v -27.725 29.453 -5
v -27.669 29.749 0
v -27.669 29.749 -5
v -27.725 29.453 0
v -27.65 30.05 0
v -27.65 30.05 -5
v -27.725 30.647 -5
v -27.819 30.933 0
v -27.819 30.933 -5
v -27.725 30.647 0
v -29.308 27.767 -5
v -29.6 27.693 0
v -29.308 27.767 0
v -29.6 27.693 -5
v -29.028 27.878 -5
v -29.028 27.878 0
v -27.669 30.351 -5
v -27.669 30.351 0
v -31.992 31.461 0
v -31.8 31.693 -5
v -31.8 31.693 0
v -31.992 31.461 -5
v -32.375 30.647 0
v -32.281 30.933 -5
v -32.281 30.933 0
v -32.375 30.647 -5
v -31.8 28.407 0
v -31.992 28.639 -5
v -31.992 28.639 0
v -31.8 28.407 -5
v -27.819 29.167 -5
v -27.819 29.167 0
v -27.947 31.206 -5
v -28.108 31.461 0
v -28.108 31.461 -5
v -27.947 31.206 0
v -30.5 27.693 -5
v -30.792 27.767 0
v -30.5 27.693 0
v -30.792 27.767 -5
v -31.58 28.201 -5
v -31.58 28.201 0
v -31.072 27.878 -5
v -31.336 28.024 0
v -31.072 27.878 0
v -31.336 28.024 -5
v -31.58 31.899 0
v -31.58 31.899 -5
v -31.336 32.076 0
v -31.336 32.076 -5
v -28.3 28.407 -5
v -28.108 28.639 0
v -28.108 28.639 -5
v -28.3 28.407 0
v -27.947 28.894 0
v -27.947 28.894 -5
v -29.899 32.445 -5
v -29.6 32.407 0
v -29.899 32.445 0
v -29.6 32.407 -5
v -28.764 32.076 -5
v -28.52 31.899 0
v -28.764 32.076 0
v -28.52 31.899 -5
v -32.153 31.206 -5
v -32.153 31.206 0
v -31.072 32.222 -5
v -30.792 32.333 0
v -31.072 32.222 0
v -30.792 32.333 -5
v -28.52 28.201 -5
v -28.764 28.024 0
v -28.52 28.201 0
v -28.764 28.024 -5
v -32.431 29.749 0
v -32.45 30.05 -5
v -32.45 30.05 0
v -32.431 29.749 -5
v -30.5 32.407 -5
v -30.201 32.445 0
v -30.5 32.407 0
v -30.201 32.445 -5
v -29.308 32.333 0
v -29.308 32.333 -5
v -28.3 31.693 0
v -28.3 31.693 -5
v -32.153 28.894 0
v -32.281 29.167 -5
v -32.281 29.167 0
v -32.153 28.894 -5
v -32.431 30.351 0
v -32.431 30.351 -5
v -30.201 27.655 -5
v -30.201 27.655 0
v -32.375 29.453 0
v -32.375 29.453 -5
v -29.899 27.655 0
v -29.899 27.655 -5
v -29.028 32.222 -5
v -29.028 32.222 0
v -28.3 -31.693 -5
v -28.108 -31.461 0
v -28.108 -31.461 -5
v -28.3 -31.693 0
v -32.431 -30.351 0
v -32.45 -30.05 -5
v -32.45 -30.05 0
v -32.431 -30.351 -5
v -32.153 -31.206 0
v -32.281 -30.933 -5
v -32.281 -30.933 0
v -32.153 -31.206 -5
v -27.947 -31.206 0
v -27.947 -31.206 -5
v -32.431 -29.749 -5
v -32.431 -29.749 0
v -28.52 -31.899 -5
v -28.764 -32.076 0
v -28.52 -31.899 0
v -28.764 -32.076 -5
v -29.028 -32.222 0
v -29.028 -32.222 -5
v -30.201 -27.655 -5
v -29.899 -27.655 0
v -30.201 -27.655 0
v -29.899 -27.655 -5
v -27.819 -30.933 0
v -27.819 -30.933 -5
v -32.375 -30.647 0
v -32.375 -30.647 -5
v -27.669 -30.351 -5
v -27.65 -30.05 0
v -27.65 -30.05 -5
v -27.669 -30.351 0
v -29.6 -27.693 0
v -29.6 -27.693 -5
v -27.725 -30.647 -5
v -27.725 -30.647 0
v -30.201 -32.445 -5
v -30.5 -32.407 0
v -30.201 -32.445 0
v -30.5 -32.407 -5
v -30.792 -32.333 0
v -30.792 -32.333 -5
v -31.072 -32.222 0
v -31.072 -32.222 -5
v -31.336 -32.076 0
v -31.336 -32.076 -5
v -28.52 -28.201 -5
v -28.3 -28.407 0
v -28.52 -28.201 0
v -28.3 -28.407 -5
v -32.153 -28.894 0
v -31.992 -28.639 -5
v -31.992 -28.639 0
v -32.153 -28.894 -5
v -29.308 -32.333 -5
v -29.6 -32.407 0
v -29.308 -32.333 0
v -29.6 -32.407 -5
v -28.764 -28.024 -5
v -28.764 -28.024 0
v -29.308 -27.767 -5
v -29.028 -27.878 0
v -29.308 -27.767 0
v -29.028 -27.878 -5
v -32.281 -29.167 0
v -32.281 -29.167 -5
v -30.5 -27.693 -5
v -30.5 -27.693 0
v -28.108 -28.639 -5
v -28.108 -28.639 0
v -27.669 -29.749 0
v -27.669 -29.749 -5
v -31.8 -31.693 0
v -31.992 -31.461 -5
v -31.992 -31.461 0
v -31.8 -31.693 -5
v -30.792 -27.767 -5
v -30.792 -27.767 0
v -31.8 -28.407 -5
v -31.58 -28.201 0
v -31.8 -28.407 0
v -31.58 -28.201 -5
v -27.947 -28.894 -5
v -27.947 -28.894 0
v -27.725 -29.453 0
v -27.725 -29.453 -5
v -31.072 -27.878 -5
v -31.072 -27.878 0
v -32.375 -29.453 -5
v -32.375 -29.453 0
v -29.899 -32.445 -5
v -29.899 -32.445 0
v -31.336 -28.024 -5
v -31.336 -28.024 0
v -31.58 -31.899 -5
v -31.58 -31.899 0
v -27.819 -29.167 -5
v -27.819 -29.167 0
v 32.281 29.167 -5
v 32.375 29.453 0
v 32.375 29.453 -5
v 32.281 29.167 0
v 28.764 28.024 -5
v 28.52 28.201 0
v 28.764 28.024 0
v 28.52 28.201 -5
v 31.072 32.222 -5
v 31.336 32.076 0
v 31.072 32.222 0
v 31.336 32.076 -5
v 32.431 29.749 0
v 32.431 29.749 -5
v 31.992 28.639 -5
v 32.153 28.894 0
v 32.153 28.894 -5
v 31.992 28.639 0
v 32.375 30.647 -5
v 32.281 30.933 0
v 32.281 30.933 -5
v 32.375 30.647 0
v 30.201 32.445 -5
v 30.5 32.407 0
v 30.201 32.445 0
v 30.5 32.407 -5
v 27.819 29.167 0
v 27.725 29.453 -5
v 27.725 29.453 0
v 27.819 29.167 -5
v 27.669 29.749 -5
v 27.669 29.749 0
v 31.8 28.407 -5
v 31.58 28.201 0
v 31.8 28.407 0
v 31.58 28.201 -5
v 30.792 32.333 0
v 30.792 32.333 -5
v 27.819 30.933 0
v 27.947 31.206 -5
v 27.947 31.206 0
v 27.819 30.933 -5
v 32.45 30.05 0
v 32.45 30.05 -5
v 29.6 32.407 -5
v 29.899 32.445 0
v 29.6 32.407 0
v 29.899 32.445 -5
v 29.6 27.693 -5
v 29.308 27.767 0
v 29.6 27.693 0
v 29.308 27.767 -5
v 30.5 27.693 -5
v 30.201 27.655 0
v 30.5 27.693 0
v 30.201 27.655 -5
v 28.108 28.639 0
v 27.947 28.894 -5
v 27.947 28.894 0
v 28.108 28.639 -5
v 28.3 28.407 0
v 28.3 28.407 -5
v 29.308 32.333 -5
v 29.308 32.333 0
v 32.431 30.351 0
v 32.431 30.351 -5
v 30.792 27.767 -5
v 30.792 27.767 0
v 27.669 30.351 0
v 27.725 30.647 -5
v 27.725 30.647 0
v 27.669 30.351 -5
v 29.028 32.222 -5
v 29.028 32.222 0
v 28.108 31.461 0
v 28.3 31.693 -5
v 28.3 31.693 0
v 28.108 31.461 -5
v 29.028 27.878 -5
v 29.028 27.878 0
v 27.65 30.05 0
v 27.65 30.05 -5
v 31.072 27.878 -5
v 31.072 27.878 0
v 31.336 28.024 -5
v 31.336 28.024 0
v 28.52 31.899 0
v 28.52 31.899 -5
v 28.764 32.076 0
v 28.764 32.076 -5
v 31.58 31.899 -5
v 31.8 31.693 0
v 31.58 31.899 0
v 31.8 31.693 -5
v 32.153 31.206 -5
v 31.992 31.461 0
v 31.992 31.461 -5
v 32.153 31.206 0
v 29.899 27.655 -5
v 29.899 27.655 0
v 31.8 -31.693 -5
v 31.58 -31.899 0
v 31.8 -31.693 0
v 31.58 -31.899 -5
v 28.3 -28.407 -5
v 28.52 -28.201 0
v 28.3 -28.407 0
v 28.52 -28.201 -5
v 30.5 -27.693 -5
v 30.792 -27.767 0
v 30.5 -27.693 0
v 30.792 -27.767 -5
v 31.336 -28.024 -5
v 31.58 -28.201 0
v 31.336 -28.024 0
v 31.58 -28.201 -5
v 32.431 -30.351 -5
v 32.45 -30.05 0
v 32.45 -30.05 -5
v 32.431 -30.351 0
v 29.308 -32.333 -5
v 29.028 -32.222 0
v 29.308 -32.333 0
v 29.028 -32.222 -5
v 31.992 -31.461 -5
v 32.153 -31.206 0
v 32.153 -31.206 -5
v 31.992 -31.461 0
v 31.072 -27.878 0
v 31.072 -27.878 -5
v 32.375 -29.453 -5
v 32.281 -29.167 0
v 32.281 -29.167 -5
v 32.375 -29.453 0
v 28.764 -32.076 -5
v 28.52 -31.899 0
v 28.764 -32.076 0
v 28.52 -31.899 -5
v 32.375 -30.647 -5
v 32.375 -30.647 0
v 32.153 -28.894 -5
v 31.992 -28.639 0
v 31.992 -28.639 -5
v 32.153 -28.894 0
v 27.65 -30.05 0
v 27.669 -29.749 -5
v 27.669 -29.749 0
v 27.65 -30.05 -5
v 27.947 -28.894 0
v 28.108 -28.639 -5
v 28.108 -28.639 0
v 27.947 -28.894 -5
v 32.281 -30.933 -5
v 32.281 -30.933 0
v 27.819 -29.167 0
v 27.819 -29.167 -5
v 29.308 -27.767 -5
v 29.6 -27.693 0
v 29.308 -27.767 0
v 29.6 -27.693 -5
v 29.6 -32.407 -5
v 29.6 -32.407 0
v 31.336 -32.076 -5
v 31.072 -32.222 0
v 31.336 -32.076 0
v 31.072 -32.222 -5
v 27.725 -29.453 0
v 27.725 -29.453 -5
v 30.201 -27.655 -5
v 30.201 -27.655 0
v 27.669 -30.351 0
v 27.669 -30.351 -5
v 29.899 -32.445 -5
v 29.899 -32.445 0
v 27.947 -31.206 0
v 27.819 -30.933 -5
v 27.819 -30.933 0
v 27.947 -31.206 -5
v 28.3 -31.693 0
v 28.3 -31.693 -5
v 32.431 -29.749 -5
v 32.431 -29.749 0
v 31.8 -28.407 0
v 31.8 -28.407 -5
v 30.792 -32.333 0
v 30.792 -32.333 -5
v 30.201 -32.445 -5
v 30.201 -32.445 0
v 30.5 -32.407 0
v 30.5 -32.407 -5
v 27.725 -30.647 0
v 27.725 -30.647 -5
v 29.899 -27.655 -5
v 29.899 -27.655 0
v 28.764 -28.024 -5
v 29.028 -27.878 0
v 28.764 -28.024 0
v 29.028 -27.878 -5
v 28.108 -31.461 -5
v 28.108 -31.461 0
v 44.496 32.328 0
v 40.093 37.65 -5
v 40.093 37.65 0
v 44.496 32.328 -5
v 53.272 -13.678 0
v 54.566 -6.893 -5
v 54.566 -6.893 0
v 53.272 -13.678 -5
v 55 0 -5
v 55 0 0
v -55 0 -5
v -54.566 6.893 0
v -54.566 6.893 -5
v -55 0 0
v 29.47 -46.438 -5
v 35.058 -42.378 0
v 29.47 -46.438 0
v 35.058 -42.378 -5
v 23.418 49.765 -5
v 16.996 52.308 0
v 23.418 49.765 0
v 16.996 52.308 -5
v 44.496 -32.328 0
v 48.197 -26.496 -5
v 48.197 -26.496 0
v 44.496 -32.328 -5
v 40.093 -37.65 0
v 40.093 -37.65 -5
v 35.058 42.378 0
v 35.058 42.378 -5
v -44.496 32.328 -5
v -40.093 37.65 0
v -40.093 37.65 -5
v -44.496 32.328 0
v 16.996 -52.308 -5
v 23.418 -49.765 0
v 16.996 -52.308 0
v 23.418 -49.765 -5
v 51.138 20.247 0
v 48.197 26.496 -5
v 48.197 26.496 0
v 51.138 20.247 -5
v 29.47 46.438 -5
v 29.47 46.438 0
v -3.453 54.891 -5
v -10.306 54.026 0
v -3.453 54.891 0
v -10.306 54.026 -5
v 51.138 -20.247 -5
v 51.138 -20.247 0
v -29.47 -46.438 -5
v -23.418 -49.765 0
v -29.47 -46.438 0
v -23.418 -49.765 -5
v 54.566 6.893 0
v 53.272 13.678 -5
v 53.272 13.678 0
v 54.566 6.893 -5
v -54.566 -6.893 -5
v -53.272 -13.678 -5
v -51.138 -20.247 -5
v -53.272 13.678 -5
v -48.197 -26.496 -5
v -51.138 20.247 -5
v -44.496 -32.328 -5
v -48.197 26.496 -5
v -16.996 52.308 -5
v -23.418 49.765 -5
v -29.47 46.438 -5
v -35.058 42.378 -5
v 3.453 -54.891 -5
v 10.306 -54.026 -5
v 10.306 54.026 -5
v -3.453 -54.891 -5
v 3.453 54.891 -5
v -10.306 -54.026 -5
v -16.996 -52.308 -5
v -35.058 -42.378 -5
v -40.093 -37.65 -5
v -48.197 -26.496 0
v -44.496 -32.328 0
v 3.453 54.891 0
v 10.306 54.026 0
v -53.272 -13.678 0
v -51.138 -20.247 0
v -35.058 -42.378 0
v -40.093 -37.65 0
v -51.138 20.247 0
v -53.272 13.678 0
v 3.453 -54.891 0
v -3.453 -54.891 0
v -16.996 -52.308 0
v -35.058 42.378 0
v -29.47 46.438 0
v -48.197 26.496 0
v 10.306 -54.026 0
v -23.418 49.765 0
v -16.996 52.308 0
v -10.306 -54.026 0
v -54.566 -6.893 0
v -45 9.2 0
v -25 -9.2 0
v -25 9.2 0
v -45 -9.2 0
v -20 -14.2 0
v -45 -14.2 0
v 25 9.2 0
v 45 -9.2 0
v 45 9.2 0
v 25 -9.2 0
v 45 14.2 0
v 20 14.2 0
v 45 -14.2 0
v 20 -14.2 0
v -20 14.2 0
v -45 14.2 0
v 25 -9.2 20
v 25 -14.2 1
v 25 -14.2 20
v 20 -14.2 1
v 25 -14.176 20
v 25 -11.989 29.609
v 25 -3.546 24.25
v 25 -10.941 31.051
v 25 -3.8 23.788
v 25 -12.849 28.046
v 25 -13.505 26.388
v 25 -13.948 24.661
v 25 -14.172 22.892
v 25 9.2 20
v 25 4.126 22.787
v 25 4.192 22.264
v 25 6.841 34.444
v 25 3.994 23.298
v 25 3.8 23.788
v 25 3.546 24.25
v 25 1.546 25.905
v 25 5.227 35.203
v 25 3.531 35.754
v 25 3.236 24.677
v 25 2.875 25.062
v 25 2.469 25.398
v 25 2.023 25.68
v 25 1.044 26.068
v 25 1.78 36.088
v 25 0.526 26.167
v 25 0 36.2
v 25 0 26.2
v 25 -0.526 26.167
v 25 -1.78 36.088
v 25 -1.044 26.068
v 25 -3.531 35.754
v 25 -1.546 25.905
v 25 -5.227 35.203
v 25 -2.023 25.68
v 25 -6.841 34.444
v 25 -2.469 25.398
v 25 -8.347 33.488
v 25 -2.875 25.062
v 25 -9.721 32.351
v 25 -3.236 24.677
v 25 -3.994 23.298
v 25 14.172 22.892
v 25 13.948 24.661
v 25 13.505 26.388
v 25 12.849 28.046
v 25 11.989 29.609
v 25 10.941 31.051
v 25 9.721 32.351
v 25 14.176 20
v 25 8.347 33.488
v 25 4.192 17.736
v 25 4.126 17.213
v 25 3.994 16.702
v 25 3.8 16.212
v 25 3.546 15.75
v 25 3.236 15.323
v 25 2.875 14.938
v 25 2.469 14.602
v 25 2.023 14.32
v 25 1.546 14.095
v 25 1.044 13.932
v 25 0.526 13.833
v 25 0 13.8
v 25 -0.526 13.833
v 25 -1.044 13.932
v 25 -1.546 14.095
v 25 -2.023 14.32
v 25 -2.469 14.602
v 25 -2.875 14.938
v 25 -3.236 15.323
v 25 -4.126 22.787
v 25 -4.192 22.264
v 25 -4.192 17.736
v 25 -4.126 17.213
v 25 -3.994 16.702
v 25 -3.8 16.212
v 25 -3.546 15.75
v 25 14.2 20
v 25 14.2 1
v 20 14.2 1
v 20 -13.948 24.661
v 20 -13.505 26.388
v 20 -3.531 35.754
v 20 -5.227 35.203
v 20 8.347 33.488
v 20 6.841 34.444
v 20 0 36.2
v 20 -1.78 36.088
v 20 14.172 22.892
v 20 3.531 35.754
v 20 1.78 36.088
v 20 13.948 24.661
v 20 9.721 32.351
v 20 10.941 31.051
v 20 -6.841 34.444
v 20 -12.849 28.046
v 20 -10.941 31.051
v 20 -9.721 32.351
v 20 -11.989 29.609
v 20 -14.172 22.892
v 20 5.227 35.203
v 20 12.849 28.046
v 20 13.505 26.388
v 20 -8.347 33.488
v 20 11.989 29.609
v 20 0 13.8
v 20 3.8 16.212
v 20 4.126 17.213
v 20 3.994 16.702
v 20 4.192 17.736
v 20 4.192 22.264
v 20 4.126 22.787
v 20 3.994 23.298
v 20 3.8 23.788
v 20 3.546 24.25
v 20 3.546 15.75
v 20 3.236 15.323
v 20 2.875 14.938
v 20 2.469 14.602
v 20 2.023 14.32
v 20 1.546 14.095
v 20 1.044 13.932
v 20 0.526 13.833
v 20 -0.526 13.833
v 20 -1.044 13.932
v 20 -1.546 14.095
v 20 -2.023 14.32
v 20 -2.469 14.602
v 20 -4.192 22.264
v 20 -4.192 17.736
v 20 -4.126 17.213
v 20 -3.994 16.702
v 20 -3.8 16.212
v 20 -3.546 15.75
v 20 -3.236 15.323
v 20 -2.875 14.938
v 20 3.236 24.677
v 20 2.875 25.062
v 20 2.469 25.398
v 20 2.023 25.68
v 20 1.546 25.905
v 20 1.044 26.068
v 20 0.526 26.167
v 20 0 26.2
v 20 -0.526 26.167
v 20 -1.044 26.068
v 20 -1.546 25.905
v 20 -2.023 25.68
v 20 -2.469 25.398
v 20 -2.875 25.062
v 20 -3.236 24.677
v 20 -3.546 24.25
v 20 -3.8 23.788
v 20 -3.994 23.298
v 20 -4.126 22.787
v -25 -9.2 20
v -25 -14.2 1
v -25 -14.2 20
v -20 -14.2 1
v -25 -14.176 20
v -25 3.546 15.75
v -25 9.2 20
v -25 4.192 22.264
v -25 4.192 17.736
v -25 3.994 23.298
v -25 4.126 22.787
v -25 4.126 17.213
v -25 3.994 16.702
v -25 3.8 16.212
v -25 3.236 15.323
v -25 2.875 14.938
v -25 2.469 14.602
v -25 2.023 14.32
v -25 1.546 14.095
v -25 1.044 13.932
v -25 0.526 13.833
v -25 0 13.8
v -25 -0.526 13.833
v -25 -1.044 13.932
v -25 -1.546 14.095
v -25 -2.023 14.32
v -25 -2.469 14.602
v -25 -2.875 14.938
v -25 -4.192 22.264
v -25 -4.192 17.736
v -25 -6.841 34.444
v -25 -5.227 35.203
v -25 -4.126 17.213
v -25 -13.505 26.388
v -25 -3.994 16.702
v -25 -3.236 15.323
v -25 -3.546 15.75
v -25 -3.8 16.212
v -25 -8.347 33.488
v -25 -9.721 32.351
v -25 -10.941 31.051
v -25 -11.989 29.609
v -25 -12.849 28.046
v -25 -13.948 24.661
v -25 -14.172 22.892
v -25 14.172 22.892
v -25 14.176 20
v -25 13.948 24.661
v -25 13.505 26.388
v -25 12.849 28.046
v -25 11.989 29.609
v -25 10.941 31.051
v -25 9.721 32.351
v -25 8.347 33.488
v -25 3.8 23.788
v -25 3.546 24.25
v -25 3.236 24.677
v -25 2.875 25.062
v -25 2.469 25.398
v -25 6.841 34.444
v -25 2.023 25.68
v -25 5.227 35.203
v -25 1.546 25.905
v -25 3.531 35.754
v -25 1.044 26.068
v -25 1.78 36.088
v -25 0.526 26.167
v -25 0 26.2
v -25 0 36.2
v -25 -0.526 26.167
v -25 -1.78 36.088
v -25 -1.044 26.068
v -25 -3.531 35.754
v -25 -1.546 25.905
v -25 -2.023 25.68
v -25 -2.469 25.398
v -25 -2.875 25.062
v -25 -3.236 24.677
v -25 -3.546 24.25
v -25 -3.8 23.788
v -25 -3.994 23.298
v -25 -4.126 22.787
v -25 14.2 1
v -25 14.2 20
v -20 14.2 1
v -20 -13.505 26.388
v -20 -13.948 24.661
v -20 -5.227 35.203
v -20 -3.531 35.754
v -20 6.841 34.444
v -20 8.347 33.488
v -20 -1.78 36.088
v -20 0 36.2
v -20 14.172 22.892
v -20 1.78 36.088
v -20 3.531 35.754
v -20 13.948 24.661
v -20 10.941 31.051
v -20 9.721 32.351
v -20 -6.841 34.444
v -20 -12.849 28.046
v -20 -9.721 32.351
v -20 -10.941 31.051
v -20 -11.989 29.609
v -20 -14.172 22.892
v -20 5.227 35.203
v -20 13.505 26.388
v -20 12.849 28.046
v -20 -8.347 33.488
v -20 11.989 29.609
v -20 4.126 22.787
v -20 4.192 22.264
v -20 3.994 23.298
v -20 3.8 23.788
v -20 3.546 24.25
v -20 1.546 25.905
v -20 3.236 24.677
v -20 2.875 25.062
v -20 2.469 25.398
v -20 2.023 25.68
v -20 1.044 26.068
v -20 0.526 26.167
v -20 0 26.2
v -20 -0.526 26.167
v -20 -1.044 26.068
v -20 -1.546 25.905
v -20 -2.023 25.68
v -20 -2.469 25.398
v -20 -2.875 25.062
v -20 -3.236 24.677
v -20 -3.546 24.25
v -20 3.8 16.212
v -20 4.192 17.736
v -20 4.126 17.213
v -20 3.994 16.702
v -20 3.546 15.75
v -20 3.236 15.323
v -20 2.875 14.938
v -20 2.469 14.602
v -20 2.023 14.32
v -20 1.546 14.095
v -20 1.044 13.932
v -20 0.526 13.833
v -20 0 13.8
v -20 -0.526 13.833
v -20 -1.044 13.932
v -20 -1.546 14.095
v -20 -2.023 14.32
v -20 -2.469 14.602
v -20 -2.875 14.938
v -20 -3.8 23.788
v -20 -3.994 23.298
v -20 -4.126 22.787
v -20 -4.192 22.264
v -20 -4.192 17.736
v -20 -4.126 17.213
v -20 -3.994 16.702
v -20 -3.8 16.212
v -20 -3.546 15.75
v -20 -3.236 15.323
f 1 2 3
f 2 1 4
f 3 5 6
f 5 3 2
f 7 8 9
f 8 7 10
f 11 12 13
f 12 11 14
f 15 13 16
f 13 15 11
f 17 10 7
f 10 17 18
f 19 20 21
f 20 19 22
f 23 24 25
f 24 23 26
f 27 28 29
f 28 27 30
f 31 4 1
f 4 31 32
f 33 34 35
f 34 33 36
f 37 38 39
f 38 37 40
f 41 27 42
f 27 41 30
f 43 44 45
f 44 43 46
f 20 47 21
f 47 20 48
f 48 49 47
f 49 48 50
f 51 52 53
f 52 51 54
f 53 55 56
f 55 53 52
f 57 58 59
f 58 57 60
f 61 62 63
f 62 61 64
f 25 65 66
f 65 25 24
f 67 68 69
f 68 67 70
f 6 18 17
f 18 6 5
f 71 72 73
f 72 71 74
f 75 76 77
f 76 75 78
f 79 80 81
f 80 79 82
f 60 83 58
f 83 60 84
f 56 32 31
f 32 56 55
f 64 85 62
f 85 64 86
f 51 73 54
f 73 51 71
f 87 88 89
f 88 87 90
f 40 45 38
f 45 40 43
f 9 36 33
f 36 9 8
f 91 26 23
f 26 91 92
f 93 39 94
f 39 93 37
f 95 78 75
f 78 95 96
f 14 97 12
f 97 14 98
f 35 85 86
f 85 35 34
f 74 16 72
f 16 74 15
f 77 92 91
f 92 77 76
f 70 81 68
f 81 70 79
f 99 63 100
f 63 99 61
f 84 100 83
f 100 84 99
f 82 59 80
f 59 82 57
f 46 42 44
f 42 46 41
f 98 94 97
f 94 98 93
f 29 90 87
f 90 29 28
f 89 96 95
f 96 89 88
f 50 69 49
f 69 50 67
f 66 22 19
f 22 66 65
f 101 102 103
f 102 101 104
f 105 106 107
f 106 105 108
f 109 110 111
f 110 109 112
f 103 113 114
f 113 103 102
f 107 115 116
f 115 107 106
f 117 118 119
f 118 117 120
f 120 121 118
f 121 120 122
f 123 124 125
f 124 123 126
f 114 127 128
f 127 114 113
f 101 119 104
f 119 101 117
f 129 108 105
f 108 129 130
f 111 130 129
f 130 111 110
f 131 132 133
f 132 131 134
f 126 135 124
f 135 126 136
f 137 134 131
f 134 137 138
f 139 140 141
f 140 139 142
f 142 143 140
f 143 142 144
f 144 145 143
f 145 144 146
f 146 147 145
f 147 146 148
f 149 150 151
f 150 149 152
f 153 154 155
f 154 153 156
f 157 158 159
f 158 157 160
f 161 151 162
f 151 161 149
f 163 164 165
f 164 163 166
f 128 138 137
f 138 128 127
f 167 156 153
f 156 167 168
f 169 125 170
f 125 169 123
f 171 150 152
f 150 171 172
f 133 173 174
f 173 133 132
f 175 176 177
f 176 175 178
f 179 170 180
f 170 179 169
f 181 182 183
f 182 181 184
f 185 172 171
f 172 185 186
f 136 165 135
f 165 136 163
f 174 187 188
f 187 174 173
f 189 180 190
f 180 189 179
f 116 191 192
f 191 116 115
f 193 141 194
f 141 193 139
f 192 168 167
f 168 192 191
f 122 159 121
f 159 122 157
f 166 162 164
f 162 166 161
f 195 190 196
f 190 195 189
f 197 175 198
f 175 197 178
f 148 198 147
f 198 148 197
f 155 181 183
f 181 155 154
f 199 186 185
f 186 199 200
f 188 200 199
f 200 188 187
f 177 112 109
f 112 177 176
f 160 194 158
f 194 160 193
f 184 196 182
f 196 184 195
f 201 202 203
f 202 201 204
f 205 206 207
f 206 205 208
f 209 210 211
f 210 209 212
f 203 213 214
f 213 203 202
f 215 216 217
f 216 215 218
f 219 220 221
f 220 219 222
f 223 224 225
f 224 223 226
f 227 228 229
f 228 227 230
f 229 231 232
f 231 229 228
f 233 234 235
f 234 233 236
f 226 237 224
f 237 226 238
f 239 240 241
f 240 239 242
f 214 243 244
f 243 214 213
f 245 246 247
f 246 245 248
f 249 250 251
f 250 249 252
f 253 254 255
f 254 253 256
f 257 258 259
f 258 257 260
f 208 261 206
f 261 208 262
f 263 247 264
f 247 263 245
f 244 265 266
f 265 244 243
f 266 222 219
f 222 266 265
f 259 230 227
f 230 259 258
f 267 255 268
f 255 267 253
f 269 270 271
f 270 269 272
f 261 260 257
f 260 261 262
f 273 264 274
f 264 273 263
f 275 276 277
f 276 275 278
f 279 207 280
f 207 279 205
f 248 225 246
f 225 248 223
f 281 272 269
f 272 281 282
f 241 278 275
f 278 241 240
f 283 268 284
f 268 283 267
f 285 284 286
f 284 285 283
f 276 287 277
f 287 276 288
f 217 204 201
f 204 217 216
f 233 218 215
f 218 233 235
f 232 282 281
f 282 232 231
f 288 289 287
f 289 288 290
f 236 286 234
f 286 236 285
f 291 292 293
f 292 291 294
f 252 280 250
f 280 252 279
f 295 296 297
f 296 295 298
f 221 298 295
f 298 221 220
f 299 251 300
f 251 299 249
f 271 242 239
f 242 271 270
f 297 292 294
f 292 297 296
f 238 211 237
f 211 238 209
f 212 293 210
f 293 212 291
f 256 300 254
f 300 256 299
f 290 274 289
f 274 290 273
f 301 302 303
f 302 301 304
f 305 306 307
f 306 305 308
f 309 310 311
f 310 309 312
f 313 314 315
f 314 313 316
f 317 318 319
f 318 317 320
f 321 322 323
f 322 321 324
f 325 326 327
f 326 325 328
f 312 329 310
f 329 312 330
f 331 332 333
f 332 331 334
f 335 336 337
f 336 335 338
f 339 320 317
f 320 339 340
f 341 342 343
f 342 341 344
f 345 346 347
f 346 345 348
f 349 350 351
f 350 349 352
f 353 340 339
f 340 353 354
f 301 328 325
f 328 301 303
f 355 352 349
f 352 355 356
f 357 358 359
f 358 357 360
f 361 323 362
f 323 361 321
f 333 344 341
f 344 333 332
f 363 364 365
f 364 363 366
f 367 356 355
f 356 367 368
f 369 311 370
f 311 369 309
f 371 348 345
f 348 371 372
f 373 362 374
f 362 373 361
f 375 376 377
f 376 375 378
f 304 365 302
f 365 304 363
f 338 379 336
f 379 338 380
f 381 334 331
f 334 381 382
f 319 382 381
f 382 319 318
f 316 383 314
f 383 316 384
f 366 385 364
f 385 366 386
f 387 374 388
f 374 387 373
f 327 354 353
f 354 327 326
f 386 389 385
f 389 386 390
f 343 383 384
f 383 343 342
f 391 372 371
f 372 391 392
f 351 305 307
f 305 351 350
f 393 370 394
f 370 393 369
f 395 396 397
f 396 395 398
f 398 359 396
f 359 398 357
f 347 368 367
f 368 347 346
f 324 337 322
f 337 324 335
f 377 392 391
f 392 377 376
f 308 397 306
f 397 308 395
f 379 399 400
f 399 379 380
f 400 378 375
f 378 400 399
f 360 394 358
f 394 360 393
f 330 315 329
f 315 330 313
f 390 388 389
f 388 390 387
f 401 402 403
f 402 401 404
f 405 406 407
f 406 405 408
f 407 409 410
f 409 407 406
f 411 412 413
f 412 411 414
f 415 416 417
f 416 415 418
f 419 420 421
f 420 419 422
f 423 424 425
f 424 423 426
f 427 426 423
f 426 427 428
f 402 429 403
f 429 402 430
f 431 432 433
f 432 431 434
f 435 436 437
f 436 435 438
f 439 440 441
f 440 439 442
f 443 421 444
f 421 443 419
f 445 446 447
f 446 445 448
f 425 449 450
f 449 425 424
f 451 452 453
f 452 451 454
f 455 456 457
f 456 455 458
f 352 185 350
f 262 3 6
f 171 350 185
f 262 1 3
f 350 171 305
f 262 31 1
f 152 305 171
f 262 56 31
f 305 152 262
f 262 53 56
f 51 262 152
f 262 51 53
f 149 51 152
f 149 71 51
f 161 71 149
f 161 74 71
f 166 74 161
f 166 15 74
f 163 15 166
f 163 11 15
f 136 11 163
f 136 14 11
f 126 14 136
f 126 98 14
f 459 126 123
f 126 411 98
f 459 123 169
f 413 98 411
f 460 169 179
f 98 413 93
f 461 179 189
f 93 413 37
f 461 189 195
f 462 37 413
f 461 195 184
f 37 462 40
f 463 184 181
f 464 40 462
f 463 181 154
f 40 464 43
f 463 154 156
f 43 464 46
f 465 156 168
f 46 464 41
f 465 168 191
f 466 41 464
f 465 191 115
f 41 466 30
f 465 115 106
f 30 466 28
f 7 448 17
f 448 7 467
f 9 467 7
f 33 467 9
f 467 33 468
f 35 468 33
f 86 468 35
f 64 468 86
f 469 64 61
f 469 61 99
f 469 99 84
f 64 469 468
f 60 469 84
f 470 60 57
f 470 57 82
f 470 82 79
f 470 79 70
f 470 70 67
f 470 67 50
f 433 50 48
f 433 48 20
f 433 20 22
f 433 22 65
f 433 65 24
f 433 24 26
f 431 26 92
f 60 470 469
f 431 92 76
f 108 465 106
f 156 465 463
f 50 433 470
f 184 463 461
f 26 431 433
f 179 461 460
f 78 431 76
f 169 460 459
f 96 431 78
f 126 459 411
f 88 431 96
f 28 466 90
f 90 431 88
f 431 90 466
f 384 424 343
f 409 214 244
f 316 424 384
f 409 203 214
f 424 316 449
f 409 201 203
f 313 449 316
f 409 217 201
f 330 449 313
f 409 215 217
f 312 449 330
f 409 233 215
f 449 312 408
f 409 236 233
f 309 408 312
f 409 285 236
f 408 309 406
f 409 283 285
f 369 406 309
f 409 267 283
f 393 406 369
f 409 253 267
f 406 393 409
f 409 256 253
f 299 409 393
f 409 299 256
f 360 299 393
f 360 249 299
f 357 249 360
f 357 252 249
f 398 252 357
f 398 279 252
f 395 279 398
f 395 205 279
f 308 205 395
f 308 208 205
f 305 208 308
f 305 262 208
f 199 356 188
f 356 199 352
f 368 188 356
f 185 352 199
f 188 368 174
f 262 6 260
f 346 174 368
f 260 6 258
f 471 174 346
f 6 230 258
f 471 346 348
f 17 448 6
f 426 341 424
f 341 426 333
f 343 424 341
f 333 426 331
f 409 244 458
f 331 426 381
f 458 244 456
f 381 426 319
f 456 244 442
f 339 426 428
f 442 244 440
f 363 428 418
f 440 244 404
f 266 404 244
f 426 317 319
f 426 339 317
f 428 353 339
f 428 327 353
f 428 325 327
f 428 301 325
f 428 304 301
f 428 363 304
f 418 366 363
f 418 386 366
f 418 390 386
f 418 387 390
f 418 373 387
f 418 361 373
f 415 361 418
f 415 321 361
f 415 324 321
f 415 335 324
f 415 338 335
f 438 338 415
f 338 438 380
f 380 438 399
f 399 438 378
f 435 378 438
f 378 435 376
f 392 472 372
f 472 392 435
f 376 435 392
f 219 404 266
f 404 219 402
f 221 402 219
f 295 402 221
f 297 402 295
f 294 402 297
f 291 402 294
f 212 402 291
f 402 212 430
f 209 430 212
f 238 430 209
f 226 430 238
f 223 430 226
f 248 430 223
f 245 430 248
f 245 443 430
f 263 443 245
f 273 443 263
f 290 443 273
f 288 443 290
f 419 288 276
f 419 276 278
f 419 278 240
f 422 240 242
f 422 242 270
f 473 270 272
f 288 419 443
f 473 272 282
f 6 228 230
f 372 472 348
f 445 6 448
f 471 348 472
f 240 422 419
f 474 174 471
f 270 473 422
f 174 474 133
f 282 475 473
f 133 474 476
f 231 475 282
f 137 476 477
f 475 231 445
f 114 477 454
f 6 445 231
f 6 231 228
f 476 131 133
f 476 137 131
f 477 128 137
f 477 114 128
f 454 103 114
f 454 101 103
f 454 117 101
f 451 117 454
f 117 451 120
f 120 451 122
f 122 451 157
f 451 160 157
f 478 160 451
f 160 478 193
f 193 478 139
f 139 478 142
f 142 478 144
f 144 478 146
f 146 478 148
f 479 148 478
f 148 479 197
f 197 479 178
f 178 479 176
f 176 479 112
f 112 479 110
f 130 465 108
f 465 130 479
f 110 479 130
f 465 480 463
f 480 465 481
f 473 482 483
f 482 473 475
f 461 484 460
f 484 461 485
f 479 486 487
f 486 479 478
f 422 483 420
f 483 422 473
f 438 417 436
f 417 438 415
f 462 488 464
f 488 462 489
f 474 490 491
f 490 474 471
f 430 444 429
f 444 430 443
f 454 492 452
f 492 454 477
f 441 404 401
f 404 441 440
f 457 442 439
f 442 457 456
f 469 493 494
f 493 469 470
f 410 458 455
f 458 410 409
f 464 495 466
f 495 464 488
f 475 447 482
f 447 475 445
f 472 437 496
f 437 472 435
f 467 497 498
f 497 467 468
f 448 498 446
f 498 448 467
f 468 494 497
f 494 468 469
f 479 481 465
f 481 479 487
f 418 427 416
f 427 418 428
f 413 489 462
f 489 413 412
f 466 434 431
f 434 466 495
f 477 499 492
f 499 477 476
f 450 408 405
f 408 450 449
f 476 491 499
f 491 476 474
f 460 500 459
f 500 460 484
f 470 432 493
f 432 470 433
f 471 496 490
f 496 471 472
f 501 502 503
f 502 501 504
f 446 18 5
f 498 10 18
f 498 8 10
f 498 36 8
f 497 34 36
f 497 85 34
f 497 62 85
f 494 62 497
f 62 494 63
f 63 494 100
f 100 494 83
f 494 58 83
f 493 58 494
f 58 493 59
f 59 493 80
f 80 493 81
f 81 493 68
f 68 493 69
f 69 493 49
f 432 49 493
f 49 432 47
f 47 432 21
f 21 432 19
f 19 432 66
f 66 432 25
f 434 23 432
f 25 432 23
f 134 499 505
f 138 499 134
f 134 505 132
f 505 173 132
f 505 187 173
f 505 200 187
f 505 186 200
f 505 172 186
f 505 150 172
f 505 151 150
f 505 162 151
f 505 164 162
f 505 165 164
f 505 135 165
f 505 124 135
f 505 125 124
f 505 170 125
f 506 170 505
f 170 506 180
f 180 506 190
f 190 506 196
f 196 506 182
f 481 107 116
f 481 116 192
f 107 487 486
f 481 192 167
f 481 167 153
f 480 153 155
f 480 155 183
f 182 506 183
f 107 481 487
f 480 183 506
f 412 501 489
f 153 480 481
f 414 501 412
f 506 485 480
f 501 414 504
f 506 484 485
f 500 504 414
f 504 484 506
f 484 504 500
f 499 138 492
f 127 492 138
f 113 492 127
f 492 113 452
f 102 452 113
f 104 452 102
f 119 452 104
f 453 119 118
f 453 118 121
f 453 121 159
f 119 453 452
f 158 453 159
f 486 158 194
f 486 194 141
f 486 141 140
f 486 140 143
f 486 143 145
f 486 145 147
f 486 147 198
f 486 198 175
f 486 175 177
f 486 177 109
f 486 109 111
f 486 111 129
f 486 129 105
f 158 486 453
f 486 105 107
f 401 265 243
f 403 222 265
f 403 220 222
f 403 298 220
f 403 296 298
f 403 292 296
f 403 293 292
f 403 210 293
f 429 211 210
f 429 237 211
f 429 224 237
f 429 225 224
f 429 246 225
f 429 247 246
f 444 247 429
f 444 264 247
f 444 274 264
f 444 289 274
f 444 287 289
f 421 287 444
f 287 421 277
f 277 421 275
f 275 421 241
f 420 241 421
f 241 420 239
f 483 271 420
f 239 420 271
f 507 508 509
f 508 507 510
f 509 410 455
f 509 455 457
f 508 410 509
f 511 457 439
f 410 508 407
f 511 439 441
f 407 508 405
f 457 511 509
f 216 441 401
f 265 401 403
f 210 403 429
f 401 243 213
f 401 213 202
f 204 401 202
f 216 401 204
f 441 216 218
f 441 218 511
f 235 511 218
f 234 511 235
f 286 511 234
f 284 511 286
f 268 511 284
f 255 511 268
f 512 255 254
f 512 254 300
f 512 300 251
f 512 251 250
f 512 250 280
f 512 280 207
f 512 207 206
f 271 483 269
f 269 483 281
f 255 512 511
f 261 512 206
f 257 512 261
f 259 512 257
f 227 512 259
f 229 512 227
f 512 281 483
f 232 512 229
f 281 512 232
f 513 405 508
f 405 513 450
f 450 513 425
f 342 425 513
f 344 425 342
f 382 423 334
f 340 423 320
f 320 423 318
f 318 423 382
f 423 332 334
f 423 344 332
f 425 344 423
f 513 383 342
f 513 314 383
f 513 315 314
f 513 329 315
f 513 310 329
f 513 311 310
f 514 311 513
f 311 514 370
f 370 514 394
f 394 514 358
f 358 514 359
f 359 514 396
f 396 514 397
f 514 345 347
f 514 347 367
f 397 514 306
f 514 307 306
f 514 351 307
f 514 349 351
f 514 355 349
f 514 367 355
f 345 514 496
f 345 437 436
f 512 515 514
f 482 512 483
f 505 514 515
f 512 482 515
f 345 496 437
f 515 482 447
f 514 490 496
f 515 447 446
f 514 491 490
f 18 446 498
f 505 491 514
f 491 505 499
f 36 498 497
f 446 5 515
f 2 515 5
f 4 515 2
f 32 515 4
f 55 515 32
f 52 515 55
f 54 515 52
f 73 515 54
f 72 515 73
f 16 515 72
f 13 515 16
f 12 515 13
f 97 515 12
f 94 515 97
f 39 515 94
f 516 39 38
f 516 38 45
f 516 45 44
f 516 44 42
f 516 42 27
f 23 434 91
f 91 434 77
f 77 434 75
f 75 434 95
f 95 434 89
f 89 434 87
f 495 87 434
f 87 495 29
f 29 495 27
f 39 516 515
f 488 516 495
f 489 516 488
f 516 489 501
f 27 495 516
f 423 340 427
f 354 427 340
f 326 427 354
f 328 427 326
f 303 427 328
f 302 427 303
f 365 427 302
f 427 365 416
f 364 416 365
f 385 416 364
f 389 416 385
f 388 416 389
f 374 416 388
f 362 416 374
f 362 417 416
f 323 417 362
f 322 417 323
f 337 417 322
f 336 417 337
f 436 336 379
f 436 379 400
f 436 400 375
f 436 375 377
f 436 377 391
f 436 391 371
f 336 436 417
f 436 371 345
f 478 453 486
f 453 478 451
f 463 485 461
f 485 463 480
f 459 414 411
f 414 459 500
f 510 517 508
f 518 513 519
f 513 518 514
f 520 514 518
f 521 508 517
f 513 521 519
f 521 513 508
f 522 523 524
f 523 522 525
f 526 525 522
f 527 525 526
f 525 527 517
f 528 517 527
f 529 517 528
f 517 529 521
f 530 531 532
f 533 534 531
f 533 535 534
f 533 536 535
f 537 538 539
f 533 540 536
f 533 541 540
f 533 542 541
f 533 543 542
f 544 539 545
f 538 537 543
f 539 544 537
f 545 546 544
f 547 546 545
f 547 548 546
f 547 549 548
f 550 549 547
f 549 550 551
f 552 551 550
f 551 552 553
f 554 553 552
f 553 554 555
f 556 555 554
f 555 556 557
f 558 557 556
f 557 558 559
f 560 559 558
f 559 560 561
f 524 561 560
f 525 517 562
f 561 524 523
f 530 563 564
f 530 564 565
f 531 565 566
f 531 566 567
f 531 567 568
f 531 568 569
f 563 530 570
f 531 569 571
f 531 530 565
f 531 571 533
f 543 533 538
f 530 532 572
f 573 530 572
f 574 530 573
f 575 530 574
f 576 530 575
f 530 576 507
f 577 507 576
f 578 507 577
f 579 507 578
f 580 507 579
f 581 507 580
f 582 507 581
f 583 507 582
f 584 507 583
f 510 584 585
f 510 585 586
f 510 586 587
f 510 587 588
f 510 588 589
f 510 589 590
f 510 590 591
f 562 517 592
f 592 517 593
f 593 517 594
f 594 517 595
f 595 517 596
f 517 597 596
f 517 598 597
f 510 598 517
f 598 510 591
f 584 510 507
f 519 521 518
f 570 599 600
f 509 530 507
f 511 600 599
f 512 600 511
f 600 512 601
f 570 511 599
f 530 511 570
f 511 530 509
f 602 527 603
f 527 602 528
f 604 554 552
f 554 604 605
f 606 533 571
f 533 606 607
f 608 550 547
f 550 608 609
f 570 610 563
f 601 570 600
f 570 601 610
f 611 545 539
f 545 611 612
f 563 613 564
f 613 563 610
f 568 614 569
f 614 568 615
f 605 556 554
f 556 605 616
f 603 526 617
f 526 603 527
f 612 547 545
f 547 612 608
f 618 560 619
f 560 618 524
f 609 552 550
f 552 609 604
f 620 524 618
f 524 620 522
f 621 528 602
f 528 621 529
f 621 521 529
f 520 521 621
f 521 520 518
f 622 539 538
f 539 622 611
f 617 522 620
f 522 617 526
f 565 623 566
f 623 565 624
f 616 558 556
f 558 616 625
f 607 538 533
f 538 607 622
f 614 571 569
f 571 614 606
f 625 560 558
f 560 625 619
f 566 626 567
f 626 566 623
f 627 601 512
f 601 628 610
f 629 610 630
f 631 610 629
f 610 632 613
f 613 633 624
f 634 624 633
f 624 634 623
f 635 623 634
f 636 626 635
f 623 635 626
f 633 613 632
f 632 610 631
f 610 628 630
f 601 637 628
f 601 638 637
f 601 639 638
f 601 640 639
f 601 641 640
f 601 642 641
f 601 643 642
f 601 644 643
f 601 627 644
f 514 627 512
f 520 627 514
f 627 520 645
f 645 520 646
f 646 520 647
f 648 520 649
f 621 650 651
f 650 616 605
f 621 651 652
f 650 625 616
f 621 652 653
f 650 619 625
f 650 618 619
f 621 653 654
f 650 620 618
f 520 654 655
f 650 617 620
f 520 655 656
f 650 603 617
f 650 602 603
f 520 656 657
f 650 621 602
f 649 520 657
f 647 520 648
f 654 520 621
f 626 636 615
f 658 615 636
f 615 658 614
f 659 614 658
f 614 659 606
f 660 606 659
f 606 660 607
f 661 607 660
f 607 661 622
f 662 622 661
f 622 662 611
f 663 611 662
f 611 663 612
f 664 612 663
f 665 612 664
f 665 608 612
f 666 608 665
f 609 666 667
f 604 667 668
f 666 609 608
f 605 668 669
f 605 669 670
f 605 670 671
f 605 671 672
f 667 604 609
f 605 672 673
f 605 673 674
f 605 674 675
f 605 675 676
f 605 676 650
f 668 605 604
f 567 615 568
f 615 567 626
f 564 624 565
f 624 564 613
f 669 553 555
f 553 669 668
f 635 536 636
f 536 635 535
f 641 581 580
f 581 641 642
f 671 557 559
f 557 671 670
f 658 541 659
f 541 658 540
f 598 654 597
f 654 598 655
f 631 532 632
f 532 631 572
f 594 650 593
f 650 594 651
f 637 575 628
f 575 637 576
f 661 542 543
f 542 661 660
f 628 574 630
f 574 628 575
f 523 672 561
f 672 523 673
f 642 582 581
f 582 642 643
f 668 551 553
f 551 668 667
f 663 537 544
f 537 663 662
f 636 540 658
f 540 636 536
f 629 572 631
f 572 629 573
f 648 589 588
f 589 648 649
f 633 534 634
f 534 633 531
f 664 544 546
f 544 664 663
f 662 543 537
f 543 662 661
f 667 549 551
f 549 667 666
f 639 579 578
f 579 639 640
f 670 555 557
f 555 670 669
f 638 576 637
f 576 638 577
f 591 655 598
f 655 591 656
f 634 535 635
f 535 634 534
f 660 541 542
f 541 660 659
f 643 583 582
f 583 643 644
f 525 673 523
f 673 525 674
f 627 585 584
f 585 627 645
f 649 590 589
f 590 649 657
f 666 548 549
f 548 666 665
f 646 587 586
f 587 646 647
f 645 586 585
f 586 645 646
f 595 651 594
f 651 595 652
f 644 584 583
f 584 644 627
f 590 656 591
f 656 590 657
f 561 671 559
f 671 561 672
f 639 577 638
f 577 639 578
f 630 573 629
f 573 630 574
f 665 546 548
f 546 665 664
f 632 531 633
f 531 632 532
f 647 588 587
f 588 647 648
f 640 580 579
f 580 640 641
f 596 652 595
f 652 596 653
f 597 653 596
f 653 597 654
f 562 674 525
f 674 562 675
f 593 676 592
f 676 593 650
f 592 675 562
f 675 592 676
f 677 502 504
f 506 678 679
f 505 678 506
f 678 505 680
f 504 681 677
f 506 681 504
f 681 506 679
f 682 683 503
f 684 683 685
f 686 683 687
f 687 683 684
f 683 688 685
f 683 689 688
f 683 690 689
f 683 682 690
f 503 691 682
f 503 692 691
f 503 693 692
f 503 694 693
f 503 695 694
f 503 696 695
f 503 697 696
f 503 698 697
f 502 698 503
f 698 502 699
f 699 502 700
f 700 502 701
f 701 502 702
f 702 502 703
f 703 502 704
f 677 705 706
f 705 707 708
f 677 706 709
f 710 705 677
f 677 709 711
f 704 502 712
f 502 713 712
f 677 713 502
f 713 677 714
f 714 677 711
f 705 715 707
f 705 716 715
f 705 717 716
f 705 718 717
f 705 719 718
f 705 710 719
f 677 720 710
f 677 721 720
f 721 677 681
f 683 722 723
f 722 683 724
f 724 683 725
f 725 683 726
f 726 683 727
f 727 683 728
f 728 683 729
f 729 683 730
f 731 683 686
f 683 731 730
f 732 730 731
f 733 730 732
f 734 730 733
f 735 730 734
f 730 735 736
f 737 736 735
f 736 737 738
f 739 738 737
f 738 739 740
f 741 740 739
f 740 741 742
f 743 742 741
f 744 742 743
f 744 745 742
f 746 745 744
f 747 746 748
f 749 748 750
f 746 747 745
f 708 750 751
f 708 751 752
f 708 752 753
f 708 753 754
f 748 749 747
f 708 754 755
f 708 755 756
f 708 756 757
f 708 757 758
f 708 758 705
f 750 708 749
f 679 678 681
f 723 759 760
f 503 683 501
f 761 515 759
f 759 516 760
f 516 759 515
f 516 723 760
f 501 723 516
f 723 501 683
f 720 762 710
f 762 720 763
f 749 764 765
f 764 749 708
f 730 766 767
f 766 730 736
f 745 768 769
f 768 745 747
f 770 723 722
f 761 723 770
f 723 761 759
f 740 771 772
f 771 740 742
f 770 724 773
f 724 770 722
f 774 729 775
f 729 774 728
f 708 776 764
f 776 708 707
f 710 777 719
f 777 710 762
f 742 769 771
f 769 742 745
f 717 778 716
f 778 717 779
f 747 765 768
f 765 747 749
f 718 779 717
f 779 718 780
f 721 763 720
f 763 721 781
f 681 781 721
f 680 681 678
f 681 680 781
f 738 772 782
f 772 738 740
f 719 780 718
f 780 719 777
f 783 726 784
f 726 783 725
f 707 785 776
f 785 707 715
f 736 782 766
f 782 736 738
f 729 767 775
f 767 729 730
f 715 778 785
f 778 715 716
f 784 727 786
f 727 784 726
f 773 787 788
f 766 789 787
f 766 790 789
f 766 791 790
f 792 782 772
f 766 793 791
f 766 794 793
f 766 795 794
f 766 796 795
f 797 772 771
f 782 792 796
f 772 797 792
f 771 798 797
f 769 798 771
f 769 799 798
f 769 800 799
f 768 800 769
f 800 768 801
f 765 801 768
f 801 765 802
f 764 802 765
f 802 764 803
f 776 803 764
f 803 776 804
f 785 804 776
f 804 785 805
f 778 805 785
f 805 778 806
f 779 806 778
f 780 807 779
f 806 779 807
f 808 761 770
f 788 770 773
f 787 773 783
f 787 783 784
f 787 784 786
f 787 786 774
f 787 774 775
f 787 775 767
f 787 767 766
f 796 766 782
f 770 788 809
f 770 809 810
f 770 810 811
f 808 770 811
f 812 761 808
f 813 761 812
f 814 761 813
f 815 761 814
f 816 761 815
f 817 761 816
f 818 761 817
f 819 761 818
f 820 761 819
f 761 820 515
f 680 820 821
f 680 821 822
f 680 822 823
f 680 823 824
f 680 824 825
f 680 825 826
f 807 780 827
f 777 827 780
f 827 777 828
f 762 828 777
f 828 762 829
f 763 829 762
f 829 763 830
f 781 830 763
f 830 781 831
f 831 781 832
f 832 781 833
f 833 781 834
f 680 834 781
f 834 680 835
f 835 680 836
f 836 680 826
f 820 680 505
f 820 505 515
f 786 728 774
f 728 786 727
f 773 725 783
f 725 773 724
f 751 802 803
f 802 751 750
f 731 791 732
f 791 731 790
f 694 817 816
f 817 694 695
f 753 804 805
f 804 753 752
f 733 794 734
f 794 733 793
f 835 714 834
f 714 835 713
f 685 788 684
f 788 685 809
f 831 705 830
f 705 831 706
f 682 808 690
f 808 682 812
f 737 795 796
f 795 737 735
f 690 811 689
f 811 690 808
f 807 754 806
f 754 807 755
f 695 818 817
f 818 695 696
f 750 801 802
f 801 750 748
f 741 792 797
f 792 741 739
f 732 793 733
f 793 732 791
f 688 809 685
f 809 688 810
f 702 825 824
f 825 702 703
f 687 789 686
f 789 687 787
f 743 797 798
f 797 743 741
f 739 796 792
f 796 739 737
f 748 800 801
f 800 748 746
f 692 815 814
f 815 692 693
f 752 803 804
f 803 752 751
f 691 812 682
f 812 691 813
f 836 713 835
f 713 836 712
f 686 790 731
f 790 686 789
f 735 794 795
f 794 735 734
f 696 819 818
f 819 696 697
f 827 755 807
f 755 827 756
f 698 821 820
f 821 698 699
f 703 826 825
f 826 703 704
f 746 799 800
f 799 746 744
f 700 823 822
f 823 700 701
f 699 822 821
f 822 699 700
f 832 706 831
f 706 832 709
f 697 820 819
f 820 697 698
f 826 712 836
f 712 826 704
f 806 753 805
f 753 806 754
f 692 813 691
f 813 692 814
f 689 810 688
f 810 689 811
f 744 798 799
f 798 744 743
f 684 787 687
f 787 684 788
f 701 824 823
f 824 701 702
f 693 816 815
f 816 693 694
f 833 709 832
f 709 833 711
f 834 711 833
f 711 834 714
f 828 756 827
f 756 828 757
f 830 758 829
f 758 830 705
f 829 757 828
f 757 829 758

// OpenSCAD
// warthog stick mount

$fn=50;


L_HOLE_DX = 60.1;
L_HOLE_DY = 60.1;
L_HOLE_R = 2.4;




BASE_R = 55;
BASE_HEIGHT = 5;

MOUNT_HOLE_BORDER = 10;
MOUNT_HOLE_DY = (BASE_R * 2) + MOUNT_HOLE_BORDER * 2;
MOUNT_HOLE_R = 4.2;
MOUNT_HOLE_X_OFFSET = -10;

MOUNT_HOLE_Z = 20; // mount hole Z spacing
MOUNT_SPACING = 40;
MOUNT_HOLE_ADJUST = 2; // mount hole adjustment from Z


TRIM = 0.1;
TRIM2 = 0.2;

module copy_mirror(vec=[0, 1, 0])
{ 
    children(); 
    mirror(vec) children(); 
}


module lower_mount_holes(h=BASE_HEIGHT, r1=L_HOLE_R, r2=L_HOLE_R) {
  dx = L_HOLE_DX / 2;
  dy = L_HOLE_DY / 2;
  for(x=[ -dx, dx], y=[-dy, dy]) {
    translate([x, y, 0])
    cylinder(h=h, r1=r1, r2=r2);
  }
}

module countersunk_base() {
  difference() {
    union() {
      cylinder(h = BASE_HEIGHT, r = BASE_R);
      hull() {
        translate([MOUNT_HOLE_X_OFFSET, MOUNT_HOLE_DY / 2, 0])
        cylinder(h=BASE_HEIGHT, r=MOUNT_HOLE_R + MOUNT_HOLE_BORDER);
        translate([MOUNT_HOLE_X_OFFSET, -MOUNT_HOLE_DY / 2, 0])
        cylinder(h=BASE_HEIGHT, r=MOUNT_HOLE_R + MOUNT_HOLE_BORDER);
      }
    }
    
    translate([0, 0, -TRIM])
    lower_mount_holes(h=BASE_HEIGHT + TRIM2);
    
    translate([0, 0, -TRIM])
    lower_mount_holes(h=BASE_HEIGHT / 2, r1=L_HOLE_R * 3, r2=L_HOLE_R * 3);
    
    translate([MOUNT_HOLE_X_OFFSET, MOUNT_HOLE_DY / 2, -TRIM])
    cylinder(h=BASE_HEIGHT +TRIM2, r=MOUNT_HOLE_R);
    translate([MOUNT_HOLE_X_OFFSET, -MOUNT_HOLE_DY / 2, -TRIM])
    cylinder(h=BASE_HEIGHT + TRIM2, r=MOUNT_HOLE_R);
  }
}

module simple_base() {
  
  difference() {
    
    cylinder(h = BASE_HEIGHT, r = BASE_R);
    translate([0, 0, -TRIM])
    lower_mount_holes(h=BASE_HEIGHT + TRIM2);
  }
}

module sides() {
  
  copy_mirror([1, 0, 0])
  translate([MOUNT_SPACING / 2, 0, 0]) {
    
  
    difference() {
      
      union() {
        
        
        // supports
        copy_mirror([0, 1, 0])
        translate([BASE_HEIGHT, MOUNT_HOLE_R + MOUNT_HOLE_BORDER - BASE_HEIGHT, 0])
        rotate([-90, 0, 0])
        linear_extrude(BASE_HEIGHT)
        polygon([ [0, 0], [MOUNT_HOLE_Z, 0], [0, MOUNT_HOLE_Z] ]);
      
        hull() {
          translate([0, -(MOUNT_HOLE_R + MOUNT_HOLE_BORDER), -1])
          cube([BASE_HEIGHT, (MOUNT_HOLE_R + MOUNT_HOLE_BORDER) * 2, 1]);
          translate([0, 0, -MOUNT_HOLE_Z - MOUNT_HOLE_ADJUST])
          rotate([0, 90, 0])
          cylinder(h = BASE_HEIGHT, r = MOUNT_HOLE_R + MOUNT_HOLE_BORDER);
        }
      }
      
      hull() {
        translate([-TRIM, 0, -MOUNT_HOLE_Z + MOUNT_HOLE_ADJUST])
        rotate([0, 90, 0])
        cylinder(h = BASE_HEIGHT + TRIM2, r = MOUNT_HOLE_R);
        translate([-TRIM, 0, -MOUNT_HOLE_Z - MOUNT_HOLE_ADJUST])
        rotate([0, 90, 0])
        cylinder(h = BASE_HEIGHT + TRIM2, r = MOUNT_HOLE_R);
      }
    }
  }
}

rotate([180, 0, 0]) {
  simple_base();
  sides();
}
